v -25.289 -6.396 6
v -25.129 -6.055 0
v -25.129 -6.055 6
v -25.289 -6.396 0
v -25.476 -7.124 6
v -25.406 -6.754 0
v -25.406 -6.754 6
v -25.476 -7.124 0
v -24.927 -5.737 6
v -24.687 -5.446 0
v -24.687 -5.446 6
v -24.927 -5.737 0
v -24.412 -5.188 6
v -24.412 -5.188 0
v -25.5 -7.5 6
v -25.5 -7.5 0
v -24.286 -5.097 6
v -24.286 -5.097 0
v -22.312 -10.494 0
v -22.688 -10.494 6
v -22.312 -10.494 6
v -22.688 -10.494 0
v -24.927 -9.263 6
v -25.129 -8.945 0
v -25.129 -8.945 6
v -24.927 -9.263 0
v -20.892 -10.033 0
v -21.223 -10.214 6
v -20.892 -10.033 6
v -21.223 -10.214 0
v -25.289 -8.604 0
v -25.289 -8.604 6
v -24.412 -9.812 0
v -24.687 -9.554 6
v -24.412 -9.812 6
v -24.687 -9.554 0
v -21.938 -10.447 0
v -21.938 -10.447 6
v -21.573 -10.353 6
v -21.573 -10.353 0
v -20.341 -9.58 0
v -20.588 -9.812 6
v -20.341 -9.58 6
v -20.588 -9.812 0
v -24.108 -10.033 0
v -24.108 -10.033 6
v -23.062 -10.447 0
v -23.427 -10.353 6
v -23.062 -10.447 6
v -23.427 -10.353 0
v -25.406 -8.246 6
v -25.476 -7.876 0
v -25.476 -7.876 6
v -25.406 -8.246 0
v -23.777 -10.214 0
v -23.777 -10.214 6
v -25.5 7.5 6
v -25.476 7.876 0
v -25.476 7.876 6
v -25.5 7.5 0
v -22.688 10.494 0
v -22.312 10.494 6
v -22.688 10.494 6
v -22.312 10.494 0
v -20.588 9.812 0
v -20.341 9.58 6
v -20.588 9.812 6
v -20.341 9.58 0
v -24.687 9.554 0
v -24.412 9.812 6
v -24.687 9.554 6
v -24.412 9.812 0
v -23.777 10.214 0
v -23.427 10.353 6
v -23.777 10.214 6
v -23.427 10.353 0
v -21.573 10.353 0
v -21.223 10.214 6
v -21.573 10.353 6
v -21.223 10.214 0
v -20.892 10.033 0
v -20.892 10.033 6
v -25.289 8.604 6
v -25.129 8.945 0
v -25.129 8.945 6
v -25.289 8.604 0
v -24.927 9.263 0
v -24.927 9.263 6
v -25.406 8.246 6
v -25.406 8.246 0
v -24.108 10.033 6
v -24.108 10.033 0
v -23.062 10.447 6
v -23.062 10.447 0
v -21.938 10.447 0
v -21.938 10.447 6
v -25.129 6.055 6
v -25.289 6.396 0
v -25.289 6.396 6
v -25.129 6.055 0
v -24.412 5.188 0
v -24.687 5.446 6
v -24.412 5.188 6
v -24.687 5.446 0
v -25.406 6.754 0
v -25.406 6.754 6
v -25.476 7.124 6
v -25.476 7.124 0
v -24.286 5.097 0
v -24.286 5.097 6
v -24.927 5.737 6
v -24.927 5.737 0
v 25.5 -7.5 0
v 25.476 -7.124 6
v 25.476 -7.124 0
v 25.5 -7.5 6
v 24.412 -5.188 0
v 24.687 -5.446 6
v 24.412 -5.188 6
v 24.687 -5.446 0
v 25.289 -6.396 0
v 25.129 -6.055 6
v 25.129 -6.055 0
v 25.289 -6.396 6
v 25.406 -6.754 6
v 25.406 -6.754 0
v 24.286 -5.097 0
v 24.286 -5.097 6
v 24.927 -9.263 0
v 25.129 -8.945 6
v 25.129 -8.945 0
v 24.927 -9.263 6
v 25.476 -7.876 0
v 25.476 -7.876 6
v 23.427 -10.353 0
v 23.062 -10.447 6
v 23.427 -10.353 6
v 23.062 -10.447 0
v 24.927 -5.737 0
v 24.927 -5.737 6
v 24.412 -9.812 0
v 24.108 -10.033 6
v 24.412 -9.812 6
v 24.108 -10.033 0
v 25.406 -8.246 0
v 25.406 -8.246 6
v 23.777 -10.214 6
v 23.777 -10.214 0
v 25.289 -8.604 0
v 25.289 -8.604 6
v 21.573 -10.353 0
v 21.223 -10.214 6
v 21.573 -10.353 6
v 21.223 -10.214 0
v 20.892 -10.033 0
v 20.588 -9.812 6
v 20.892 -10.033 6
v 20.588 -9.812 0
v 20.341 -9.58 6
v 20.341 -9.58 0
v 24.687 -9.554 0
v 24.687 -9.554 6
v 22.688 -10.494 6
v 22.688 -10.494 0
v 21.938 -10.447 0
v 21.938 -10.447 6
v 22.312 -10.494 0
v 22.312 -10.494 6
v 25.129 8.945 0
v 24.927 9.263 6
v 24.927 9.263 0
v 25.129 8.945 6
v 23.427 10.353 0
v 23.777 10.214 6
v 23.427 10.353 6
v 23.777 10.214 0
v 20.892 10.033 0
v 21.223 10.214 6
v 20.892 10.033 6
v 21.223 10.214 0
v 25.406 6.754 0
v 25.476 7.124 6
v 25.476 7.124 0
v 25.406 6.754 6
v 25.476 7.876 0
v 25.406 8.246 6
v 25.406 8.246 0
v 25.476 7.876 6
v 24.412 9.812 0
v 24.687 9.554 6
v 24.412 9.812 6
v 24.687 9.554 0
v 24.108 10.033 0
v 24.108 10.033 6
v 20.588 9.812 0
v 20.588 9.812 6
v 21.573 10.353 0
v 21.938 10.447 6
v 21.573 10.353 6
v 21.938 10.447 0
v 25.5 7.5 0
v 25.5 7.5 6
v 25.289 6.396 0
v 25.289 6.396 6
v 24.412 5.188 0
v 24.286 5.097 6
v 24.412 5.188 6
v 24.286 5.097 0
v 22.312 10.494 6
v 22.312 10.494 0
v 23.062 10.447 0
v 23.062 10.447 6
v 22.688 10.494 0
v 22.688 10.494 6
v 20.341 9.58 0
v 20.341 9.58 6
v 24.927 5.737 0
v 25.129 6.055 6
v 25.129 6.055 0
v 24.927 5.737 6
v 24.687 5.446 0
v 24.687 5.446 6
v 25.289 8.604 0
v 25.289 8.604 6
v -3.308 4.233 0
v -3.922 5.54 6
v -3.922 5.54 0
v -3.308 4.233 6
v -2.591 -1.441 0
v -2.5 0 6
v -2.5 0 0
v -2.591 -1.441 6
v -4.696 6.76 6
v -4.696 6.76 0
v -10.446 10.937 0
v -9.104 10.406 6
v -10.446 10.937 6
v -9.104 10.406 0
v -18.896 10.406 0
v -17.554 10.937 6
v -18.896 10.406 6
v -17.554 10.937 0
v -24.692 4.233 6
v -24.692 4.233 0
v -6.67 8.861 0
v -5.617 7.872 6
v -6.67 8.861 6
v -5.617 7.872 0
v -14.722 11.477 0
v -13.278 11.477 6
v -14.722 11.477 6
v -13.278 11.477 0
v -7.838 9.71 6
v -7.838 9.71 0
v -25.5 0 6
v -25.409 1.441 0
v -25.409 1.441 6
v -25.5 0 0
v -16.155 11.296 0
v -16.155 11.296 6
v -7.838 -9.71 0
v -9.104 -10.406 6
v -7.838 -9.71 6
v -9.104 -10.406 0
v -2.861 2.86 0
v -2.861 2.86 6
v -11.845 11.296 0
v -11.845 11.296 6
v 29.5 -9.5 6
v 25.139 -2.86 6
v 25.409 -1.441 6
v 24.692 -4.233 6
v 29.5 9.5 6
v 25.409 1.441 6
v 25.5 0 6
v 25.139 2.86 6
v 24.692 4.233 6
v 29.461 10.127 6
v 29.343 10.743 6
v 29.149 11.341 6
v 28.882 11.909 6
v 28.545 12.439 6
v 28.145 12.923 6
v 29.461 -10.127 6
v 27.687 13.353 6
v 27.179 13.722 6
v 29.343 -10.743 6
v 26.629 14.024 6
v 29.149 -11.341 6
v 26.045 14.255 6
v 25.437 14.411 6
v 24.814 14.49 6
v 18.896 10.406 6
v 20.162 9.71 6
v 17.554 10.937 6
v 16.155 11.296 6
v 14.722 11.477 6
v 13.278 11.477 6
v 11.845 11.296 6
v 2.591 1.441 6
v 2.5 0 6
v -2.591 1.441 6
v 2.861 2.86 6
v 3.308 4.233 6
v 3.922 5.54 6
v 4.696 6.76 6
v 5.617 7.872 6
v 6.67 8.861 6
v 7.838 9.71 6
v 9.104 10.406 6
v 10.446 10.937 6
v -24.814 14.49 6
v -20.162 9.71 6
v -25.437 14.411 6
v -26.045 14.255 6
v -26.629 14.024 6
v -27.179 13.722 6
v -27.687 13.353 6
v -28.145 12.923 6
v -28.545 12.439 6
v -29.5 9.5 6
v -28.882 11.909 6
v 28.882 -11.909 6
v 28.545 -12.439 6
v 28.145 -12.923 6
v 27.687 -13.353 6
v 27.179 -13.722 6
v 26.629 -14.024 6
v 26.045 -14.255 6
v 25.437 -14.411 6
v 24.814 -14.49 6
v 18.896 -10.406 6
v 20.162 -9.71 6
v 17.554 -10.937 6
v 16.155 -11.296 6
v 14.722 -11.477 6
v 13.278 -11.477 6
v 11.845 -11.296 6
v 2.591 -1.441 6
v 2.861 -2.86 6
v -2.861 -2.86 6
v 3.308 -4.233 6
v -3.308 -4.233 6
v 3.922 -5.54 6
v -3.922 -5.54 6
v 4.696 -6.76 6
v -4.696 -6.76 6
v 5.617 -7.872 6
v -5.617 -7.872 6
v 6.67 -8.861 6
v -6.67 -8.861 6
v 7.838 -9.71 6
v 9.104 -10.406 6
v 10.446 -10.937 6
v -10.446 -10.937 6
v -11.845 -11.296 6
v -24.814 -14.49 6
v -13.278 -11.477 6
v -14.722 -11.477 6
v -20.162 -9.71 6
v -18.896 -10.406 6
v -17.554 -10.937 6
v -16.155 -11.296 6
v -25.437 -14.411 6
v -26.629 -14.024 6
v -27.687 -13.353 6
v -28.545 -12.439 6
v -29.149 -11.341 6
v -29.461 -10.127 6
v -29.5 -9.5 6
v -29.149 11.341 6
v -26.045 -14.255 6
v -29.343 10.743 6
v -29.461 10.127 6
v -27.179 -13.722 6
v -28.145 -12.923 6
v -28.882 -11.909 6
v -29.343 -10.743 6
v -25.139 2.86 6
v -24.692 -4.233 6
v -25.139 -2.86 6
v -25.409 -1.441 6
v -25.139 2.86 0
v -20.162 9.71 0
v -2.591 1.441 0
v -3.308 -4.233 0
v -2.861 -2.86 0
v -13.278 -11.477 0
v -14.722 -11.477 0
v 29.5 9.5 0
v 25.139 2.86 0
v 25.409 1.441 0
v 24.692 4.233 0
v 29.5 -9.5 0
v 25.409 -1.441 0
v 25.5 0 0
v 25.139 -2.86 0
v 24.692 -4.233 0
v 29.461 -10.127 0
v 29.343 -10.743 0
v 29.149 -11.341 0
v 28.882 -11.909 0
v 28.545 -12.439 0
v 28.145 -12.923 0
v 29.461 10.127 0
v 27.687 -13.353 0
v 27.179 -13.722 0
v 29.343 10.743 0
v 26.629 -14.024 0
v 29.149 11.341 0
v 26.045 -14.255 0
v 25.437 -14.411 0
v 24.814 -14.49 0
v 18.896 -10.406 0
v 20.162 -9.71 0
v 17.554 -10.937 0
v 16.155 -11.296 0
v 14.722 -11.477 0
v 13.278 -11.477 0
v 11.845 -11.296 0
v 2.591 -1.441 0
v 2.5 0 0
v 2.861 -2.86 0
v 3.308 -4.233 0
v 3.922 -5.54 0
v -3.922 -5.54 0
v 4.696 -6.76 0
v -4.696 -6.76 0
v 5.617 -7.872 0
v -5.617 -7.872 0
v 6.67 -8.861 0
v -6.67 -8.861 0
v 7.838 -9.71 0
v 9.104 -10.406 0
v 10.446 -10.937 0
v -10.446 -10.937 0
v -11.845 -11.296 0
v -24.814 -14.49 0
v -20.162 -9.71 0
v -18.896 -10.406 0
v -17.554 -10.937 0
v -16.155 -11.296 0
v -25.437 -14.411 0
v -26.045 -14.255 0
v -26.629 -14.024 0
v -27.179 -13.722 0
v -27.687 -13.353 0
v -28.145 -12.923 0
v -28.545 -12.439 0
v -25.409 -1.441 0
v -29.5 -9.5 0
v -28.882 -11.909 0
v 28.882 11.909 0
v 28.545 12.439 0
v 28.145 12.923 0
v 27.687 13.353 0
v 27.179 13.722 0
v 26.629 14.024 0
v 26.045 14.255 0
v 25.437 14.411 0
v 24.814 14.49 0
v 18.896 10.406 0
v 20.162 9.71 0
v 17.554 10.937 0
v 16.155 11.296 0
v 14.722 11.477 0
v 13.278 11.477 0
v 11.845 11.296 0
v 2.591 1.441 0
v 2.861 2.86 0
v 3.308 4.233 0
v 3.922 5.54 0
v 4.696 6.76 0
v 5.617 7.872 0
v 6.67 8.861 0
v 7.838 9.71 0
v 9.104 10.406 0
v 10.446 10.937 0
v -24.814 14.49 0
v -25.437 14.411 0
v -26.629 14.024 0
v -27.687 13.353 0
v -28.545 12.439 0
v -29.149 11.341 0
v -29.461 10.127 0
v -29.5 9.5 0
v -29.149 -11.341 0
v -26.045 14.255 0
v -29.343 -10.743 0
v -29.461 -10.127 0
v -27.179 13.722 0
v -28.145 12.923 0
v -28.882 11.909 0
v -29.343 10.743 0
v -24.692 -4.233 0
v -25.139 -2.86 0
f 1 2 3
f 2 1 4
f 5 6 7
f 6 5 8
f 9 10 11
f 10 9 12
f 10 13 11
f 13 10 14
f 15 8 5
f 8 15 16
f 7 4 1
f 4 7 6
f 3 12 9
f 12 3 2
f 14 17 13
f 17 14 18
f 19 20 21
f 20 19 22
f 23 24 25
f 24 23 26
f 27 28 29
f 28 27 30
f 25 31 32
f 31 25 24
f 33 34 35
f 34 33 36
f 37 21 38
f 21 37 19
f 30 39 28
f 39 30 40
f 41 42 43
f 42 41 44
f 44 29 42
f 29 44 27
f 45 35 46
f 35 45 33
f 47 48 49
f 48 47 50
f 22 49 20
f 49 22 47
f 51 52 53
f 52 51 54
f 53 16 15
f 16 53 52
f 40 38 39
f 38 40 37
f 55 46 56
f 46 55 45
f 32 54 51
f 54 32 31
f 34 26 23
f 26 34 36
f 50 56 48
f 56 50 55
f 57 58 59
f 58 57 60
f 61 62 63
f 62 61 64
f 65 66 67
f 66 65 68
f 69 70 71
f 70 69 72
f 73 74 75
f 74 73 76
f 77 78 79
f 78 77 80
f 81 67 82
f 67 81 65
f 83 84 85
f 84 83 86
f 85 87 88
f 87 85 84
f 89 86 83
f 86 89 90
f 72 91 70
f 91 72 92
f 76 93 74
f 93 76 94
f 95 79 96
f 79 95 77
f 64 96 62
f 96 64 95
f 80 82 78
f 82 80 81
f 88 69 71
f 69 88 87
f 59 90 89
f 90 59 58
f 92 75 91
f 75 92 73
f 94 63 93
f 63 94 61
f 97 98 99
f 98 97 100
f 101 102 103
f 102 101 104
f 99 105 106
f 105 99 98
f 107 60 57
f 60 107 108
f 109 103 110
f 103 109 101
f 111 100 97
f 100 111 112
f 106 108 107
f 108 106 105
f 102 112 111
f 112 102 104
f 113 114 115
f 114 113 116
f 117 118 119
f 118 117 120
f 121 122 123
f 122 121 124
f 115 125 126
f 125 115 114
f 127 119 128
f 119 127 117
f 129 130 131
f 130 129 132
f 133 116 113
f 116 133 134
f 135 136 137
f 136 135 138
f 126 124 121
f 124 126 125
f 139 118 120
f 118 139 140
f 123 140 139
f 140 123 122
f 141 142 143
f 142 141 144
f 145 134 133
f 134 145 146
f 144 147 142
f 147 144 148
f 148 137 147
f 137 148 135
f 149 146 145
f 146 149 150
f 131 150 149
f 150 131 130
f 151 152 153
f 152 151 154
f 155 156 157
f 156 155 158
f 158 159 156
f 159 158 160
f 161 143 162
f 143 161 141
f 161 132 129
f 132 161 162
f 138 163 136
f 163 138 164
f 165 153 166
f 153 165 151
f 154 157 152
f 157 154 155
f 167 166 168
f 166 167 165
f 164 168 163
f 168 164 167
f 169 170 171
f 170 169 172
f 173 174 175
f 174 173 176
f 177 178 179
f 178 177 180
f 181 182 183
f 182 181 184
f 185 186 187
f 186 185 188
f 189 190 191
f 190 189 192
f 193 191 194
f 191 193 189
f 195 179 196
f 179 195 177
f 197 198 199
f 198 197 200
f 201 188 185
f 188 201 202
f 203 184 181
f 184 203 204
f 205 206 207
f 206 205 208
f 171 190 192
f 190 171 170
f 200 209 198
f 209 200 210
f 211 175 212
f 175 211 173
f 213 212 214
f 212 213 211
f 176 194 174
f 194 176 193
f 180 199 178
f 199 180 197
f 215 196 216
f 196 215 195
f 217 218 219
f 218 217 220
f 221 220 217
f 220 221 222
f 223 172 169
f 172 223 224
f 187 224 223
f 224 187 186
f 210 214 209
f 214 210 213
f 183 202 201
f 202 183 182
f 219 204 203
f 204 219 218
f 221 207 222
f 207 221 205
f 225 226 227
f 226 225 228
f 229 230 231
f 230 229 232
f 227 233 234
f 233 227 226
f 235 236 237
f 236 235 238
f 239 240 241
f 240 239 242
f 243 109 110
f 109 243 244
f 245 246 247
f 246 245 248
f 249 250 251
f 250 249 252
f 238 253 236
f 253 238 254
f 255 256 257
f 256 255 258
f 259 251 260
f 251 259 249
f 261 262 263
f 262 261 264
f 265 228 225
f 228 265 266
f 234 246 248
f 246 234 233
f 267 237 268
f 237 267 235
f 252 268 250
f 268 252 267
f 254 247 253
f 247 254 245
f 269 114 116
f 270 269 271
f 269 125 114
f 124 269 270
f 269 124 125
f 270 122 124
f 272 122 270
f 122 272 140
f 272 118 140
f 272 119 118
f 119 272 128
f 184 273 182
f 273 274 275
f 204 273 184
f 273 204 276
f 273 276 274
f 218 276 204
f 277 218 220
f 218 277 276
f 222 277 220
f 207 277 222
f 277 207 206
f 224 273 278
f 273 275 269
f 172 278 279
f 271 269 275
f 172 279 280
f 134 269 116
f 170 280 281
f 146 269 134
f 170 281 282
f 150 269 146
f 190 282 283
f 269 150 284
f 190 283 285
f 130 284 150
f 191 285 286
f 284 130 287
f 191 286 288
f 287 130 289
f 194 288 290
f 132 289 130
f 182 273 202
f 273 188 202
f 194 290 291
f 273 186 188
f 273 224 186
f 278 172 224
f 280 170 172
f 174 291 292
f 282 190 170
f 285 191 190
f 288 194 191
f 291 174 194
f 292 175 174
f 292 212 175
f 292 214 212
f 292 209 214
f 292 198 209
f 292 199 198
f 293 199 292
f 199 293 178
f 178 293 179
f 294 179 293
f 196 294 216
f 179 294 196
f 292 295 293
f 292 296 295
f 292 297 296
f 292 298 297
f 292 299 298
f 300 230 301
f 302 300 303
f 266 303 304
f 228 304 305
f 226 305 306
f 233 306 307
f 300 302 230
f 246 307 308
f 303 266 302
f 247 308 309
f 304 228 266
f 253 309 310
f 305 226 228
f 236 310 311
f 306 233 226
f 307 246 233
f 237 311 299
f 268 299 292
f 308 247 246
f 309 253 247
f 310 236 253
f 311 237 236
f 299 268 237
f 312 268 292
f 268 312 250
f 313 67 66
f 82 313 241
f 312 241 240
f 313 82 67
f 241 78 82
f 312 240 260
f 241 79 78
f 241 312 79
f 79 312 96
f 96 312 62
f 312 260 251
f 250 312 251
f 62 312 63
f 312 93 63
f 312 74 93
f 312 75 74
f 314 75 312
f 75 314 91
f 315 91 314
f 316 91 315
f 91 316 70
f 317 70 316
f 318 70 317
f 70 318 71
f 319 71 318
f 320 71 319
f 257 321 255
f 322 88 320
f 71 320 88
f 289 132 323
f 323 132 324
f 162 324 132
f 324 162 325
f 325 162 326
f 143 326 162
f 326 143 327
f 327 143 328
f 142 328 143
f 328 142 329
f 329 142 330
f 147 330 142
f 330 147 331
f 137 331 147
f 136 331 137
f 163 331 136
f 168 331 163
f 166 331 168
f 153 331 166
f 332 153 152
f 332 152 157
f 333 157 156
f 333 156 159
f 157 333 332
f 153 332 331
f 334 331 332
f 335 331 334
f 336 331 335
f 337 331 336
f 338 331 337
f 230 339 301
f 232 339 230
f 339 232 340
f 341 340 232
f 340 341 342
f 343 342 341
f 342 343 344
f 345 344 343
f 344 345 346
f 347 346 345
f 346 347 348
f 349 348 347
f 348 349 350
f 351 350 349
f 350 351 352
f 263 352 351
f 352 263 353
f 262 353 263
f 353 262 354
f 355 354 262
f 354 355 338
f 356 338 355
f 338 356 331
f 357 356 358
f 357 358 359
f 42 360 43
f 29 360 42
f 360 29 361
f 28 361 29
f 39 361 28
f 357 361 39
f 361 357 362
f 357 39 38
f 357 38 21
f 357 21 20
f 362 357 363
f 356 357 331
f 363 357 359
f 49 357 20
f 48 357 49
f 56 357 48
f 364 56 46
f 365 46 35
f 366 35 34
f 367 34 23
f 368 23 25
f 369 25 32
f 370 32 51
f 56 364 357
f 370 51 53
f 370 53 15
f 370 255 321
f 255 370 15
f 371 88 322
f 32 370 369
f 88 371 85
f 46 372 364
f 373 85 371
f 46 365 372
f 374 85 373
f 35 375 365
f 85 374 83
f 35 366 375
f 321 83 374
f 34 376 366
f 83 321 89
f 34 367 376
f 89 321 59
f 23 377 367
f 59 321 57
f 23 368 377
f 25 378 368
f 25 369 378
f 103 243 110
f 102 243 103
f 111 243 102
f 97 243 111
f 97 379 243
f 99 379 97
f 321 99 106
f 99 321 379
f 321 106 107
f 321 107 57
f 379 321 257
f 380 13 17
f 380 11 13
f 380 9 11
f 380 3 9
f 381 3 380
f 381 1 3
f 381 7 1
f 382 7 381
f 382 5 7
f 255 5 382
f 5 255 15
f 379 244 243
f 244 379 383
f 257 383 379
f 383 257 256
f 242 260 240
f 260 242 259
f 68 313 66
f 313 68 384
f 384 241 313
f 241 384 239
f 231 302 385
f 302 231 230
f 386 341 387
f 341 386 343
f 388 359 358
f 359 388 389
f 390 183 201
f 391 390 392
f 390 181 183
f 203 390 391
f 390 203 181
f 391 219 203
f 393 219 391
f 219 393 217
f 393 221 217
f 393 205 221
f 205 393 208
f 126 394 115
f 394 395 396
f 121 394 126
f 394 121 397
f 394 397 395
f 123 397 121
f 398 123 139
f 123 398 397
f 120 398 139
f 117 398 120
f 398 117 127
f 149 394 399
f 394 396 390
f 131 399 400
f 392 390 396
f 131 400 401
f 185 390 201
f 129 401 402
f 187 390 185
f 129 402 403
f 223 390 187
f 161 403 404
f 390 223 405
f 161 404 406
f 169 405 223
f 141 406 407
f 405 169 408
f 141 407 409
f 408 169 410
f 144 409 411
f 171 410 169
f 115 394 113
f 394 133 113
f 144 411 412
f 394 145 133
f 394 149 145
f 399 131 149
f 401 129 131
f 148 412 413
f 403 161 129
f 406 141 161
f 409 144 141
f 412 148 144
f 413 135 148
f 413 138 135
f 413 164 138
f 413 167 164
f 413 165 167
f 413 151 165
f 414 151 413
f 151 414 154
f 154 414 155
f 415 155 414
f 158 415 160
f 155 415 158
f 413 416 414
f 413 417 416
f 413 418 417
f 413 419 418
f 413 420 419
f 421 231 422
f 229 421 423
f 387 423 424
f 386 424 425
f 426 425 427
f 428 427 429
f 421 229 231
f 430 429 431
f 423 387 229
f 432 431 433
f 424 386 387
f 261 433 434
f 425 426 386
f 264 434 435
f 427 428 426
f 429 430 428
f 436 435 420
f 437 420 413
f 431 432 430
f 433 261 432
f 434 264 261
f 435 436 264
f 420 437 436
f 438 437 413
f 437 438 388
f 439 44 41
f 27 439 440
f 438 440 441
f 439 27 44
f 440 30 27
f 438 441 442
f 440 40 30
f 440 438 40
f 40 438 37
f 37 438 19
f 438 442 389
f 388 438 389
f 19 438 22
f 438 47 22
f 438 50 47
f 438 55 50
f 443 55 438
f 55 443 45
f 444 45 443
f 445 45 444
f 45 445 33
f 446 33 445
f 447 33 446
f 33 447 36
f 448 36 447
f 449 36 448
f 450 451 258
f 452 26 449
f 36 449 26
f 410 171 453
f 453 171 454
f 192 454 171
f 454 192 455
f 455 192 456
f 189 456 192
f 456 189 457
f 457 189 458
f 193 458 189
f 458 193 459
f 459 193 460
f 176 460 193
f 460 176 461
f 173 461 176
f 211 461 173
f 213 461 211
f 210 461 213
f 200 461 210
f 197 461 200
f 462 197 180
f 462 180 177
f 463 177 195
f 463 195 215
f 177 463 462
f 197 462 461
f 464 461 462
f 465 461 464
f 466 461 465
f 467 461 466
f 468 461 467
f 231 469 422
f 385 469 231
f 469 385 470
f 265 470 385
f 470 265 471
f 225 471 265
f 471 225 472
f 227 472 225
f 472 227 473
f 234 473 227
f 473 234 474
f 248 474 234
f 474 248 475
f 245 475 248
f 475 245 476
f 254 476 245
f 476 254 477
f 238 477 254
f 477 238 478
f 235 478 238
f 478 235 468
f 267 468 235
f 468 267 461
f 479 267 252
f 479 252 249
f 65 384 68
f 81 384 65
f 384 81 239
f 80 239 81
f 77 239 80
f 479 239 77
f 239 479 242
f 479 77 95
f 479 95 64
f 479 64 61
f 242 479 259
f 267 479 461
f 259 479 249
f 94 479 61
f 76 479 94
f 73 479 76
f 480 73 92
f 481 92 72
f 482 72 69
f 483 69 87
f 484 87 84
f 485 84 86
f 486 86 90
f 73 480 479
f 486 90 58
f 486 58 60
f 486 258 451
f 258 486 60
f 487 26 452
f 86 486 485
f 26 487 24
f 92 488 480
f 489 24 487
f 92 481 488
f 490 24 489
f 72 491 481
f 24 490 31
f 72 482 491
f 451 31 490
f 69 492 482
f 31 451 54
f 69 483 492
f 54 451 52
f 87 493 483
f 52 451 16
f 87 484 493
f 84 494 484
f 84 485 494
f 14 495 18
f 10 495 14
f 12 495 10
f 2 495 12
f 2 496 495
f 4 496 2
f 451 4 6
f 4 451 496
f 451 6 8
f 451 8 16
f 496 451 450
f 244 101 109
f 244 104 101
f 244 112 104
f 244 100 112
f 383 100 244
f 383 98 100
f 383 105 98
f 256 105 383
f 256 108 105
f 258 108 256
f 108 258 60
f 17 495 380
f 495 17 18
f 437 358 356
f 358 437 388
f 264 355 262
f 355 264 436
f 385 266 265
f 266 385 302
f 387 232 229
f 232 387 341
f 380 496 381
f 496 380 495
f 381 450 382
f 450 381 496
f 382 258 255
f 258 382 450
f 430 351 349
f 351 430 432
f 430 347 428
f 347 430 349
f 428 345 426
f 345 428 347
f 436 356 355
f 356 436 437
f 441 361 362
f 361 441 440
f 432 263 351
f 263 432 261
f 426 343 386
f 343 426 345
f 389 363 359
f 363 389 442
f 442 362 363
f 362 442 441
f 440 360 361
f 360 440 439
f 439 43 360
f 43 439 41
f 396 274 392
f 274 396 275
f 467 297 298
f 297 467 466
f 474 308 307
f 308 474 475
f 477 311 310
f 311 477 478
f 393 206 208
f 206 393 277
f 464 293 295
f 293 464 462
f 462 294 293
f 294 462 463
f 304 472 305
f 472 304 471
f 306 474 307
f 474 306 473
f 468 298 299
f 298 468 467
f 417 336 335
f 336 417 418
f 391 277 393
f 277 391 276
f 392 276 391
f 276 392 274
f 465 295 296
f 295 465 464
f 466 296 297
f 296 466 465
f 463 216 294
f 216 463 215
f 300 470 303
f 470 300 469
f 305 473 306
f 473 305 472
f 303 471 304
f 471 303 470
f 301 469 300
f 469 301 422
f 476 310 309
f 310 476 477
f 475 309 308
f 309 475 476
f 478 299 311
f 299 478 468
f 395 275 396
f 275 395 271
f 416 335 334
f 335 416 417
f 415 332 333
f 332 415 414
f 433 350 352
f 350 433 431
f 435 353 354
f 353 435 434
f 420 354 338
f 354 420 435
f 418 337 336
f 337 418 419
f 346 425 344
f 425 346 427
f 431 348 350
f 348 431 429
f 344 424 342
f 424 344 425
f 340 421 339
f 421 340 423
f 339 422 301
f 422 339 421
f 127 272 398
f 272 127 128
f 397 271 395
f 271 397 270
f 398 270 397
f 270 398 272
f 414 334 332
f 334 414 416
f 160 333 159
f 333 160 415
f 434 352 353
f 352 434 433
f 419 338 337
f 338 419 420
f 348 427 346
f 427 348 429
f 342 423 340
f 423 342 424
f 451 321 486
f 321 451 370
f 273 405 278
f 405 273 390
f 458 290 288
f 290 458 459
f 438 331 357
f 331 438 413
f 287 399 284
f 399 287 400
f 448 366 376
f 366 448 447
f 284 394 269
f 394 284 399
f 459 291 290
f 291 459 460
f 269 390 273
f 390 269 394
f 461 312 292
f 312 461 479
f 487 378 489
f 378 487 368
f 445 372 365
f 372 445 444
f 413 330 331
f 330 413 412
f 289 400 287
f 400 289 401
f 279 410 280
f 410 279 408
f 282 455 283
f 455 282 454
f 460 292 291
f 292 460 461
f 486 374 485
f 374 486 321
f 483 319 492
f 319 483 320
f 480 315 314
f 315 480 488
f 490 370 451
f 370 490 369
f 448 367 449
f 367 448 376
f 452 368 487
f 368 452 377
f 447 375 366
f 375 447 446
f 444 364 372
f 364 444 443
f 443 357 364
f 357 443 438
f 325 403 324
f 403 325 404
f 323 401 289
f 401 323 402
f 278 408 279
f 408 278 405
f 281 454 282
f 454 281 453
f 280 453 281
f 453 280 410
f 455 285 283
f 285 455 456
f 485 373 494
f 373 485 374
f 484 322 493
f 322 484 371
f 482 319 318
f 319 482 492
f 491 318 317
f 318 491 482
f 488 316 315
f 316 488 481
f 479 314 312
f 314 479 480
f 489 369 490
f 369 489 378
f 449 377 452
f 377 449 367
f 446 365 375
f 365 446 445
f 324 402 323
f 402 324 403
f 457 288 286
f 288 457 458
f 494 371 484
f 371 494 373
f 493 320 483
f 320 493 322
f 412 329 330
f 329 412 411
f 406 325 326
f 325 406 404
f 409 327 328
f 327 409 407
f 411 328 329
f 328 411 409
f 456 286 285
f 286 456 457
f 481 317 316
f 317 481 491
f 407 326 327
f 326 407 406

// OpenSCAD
$fn = 50;


difference() {
	union() {
		hull() {
			translate(v = [-24.5000000000, 9.5000000000, 0]) {
				cylinder(h = 6, r = 5);
			}
			translate(v = [24.5000000000, 9.5000000000, 0]) {
				cylinder(h = 6, r = 5);
			}
			translate(v = [-24.5000000000, -9.5000000000, 0]) {
				cylinder(h = 6, r = 5);
			}
			translate(v = [24.5000000000, -9.5000000000, 0]) {
				cylinder(h = 6, r = 5);
			}
		}
	}
	union() {
		#translate(v = [-22.5000000000, -7.5000000000, -100.0000000000]) {
			cylinder(h = 200, r = 3.0000000000);
		}
		#translate(v = [-22.5000000000, 7.5000000000, -100.0000000000]) {
			cylinder(h = 200, r = 3.0000000000);
		}
		#translate(v = [22.5000000000, -7.5000000000, -100.0000000000]) {
			cylinder(h = 200, r = 3.0000000000);
		}
		#translate(v = [22.5000000000, 7.5000000000, -100.0000000000]) {
			cylinder(h = 200, r = 3.0000000000);
		}
		#translate(v = [-14.0000000000, 0, 0]) {
			cylinder(h = 6, r = 11.5000000000);
		}
		#translate(v = [14.0000000000, 0, 0]) {
			cylinder(h = 6, r = 11.5000000000);
		}
	}
}
